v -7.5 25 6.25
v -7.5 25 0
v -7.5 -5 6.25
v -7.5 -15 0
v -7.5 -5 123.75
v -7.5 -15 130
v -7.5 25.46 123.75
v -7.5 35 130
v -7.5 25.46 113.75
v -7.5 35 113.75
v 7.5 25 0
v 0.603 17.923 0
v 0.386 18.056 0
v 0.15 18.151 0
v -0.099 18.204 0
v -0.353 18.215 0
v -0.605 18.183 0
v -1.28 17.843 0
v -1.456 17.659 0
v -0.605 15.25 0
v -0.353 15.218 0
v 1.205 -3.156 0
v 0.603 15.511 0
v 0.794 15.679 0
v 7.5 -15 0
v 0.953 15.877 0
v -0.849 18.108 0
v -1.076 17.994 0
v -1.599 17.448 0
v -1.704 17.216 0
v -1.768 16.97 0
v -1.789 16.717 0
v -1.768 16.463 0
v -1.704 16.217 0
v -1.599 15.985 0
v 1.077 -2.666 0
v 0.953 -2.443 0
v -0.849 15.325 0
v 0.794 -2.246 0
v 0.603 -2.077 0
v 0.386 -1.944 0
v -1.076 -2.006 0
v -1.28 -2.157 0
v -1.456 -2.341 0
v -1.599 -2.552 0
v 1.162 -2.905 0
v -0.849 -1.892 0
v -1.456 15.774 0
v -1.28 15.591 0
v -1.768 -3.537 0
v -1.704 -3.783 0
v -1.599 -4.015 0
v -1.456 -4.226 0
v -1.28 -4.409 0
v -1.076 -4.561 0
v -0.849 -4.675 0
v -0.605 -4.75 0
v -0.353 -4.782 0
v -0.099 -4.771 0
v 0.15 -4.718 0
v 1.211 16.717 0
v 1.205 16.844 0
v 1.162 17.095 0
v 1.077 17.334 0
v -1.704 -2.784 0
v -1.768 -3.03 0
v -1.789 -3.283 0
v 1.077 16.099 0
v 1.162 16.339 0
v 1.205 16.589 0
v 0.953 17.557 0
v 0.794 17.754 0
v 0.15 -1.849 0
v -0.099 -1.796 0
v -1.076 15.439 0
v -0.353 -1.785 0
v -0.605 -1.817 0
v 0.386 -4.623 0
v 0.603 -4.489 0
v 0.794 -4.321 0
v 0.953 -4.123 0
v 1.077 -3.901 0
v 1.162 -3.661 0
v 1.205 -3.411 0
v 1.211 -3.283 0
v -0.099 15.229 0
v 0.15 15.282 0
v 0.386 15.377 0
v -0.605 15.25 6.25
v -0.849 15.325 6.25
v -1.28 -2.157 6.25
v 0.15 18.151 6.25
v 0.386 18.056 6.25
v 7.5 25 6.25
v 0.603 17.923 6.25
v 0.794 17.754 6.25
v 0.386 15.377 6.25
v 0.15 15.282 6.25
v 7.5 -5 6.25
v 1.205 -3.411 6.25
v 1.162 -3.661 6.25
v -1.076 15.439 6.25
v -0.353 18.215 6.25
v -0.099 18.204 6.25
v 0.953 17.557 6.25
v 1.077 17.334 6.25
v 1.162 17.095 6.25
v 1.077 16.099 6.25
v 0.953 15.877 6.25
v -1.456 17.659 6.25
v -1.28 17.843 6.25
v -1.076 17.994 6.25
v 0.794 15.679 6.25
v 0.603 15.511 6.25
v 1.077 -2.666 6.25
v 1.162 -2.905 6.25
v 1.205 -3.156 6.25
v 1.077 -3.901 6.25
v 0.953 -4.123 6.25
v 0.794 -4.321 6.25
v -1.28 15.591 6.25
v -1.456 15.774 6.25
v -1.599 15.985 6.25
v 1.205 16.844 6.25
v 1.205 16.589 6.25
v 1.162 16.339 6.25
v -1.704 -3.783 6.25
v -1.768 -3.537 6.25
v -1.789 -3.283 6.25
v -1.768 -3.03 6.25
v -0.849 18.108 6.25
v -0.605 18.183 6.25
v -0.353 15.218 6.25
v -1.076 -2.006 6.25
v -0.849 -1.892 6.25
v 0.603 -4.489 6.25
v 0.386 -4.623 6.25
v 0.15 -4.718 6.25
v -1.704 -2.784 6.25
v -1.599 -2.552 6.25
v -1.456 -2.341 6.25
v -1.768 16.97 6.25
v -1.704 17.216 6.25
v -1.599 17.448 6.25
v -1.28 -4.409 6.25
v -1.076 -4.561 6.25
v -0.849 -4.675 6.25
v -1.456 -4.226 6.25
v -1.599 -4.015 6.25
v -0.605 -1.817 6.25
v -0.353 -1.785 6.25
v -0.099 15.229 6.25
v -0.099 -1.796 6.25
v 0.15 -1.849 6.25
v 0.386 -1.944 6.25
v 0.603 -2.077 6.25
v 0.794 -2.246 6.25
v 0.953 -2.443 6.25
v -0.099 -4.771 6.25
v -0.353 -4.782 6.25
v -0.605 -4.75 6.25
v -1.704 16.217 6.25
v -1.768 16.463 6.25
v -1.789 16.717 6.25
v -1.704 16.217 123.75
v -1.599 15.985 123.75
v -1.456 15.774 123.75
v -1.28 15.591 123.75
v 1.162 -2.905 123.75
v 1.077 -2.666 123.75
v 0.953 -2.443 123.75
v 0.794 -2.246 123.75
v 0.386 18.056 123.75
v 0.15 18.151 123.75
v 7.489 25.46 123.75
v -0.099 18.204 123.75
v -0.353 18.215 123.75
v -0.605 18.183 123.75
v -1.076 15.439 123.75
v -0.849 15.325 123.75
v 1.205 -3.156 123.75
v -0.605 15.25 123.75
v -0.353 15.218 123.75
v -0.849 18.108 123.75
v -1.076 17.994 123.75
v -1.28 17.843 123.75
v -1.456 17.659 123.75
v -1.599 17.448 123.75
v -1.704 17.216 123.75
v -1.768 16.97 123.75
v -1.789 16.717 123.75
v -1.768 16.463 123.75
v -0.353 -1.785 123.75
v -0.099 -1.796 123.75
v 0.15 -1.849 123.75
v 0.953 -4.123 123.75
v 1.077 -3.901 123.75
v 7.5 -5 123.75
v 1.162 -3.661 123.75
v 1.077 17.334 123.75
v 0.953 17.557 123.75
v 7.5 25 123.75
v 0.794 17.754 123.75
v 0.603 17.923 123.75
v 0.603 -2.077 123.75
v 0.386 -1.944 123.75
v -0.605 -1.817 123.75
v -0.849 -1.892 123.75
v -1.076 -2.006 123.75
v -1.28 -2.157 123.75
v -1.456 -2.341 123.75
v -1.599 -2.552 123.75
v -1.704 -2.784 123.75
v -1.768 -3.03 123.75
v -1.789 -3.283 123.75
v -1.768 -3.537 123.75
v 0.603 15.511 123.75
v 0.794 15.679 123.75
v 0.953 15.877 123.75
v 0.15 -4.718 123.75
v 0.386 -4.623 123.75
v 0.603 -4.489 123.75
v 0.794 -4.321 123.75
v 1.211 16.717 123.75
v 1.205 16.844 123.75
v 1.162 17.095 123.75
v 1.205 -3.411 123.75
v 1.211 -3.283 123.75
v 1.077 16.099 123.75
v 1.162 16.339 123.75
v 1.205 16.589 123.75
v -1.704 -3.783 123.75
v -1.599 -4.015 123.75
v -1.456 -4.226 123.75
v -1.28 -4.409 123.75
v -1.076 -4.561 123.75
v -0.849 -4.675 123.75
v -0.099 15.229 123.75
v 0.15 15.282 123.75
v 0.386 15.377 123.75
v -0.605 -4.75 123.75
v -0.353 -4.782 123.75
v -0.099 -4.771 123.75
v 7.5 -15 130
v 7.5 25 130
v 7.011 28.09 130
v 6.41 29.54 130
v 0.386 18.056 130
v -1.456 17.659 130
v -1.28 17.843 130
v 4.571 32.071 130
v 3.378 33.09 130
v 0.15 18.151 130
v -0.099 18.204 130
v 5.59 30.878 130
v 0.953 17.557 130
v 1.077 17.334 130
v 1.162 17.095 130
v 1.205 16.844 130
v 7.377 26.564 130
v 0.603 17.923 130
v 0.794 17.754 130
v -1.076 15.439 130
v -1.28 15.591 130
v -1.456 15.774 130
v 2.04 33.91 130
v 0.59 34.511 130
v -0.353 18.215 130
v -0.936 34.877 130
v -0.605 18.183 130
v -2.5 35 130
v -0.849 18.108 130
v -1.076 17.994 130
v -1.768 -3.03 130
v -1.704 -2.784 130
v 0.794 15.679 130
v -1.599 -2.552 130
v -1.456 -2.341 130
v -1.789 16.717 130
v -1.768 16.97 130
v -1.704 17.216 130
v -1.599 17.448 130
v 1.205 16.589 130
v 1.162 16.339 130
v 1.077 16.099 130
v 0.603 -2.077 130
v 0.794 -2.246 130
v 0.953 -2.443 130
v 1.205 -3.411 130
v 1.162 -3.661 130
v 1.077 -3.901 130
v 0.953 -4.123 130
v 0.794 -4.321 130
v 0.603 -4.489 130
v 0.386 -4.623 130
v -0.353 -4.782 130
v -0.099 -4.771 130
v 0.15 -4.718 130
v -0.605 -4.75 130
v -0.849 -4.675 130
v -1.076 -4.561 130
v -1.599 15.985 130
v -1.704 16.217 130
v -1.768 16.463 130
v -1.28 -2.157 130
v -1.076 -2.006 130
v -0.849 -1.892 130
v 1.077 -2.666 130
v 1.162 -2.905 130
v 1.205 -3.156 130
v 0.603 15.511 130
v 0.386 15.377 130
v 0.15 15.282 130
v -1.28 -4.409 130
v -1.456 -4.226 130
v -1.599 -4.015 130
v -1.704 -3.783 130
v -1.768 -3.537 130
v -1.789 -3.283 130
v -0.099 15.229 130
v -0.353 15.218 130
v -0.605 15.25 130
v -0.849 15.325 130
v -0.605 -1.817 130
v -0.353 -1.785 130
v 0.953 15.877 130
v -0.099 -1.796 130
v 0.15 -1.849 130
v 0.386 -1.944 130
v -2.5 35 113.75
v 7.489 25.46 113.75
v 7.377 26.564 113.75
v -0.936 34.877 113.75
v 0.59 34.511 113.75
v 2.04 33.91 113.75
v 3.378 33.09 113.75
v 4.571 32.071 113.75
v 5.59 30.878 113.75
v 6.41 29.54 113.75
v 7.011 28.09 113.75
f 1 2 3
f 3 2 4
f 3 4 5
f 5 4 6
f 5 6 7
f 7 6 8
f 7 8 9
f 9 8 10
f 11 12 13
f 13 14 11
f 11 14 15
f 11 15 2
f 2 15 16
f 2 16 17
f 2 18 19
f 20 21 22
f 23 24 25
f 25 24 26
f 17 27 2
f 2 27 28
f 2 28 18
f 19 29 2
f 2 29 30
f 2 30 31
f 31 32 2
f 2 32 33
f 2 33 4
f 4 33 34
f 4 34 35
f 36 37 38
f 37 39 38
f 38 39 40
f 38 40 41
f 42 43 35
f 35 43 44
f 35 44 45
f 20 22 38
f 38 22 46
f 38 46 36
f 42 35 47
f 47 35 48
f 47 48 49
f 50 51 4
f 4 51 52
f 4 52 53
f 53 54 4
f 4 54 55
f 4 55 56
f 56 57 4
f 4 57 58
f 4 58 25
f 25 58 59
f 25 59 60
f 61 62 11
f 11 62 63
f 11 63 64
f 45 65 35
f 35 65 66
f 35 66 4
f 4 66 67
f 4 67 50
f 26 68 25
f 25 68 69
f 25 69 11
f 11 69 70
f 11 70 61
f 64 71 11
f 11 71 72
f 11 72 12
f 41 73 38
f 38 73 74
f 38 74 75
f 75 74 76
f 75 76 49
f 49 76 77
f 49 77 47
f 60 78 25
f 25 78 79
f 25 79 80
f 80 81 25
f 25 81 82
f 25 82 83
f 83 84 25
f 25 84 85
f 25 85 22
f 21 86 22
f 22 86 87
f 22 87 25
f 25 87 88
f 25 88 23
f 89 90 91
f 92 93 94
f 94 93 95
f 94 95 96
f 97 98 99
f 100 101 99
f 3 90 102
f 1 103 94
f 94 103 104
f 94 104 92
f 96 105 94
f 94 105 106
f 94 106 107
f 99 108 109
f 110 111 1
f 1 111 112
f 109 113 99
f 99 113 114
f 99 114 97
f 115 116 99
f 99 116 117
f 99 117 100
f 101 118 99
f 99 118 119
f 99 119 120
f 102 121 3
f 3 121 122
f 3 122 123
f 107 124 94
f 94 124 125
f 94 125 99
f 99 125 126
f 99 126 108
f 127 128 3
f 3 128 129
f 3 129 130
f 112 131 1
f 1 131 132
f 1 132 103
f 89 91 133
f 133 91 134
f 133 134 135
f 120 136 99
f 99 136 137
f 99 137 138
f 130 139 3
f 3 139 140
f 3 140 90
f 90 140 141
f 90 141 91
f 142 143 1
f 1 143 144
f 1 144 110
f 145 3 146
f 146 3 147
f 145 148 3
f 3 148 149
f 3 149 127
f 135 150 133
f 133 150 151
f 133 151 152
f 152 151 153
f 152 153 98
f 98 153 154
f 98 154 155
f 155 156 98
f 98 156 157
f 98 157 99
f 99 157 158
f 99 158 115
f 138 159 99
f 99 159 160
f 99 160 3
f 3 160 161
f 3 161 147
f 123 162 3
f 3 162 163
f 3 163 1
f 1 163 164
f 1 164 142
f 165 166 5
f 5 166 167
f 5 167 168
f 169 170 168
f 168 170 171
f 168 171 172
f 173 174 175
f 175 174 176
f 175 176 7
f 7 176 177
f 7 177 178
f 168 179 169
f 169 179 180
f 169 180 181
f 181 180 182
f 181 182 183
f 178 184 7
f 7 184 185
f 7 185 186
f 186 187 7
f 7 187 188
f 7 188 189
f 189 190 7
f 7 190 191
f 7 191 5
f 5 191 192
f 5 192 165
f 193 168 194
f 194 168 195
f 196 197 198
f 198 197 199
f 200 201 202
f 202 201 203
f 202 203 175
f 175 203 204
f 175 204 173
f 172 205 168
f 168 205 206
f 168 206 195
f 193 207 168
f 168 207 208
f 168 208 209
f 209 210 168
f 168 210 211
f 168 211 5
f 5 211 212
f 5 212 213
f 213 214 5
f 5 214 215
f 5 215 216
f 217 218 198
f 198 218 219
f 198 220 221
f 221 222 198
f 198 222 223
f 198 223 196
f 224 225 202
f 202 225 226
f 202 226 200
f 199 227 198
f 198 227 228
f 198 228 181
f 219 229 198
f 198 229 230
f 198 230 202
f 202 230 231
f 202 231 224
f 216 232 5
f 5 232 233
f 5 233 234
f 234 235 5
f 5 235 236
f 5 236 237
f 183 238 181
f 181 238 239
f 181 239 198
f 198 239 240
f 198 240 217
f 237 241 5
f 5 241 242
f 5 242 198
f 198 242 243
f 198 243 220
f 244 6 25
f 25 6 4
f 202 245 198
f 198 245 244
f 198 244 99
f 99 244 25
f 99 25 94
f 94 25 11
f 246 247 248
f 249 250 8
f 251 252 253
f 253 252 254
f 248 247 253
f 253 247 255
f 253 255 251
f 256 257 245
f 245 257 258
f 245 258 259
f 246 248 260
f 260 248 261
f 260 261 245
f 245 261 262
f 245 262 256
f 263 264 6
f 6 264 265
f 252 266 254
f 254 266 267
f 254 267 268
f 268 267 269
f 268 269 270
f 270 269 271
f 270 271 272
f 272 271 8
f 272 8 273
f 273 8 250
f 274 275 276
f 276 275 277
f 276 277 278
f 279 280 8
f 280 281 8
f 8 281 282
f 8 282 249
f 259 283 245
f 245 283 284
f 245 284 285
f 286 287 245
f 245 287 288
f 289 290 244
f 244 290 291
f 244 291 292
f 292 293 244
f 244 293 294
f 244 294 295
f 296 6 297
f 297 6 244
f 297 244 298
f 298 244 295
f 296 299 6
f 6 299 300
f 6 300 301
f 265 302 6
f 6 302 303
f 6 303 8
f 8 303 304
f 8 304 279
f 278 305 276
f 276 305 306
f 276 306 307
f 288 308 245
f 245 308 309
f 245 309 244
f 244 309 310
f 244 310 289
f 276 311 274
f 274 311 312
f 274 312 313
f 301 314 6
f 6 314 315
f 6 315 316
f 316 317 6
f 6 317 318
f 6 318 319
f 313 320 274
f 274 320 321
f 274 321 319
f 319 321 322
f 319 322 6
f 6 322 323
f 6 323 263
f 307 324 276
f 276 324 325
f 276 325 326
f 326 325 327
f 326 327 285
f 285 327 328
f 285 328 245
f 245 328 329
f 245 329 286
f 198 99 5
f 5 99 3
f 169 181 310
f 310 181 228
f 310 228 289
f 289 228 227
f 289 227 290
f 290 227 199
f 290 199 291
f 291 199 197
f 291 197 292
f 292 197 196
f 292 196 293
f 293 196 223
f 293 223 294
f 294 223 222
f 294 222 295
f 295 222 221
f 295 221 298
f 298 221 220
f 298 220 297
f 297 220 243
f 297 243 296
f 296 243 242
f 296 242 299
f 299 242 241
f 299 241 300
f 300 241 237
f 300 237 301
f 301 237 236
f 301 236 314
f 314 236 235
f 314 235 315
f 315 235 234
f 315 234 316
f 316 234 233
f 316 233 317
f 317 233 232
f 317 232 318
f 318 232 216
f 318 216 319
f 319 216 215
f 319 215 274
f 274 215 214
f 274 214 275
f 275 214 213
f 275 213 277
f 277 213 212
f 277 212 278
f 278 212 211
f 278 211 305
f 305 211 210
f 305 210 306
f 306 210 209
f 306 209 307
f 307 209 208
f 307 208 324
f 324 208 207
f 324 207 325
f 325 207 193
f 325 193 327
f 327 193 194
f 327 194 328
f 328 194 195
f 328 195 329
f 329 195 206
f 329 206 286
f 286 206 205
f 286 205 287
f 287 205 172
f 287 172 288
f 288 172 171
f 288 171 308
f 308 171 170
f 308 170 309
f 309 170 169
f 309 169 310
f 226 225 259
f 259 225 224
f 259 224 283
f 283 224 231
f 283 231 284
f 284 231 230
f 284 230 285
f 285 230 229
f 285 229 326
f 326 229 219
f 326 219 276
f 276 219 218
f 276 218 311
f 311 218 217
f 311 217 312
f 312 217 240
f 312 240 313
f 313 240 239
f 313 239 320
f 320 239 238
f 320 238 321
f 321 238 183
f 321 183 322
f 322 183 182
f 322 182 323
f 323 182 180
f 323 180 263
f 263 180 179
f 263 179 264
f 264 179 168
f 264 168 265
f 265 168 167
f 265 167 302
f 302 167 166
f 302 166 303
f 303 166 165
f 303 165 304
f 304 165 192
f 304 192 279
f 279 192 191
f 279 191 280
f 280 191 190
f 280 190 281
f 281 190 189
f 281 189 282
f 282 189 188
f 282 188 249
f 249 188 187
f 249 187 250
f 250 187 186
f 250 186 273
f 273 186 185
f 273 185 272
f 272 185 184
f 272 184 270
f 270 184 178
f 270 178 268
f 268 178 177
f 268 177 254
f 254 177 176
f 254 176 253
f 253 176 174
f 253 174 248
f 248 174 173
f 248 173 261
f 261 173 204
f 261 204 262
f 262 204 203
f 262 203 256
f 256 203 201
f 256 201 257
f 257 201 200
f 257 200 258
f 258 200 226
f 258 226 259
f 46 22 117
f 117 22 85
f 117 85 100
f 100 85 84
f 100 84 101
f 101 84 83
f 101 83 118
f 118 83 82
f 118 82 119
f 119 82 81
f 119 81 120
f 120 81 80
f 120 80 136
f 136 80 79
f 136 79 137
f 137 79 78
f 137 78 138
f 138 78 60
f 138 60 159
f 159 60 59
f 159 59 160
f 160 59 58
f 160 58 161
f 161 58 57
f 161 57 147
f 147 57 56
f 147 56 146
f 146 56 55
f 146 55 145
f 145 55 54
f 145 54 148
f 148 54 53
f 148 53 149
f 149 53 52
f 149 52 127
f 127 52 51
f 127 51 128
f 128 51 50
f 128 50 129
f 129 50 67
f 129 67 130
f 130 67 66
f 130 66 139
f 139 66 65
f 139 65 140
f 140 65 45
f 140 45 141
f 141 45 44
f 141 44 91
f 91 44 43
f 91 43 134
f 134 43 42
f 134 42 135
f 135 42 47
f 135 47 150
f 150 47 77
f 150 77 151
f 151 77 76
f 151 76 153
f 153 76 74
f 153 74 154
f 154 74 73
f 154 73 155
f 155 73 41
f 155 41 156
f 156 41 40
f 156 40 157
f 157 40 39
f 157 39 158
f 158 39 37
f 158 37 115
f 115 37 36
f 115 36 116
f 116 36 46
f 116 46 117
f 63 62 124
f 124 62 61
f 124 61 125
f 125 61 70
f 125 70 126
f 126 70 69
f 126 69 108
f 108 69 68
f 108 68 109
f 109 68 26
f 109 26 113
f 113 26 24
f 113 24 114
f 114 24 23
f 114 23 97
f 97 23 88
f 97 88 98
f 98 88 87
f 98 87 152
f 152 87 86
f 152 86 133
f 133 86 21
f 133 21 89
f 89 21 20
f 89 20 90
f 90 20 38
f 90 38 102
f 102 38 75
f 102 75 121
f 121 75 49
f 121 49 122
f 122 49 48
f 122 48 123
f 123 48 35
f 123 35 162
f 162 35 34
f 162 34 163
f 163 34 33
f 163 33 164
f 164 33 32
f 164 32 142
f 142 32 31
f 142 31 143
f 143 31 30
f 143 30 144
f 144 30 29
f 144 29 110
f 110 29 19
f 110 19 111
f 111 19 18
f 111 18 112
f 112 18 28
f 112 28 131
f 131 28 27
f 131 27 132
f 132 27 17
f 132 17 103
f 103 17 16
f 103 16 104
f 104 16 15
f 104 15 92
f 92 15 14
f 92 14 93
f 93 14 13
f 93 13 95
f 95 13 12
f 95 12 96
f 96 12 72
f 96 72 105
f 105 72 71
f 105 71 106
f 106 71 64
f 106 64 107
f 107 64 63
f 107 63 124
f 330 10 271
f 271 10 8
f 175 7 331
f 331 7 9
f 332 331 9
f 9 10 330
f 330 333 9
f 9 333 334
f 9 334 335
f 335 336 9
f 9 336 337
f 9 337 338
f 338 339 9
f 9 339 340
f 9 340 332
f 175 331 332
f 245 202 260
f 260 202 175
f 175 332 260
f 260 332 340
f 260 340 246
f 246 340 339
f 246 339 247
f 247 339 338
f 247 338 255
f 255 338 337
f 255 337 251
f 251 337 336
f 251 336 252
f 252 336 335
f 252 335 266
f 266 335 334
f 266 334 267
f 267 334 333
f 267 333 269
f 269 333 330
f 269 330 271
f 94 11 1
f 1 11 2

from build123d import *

# Parameters (mm, degrees)
SKETCH1_W               = 15
SKETCH1_H               = 40
BOSS_EXTRUDE1_DEPTH     = 130
SKETCH2_W               = 15
SKETCH2_H               = 117.5
CUT_EXTRUDE1_DEPTH      = 30
CUT_EXTRUDE2_DEPTH      = 133.594306062
CUT_EXTRUDE2_DEPTH_BACK = 133.594306062
SKETCH3_R               = 1.5
SKETCH4_W               = 15
SKETCH4_H               = 6.25
BOSS_EXTRUDE2_DEPTH     = 10
SKETCH5_W               = 15
SKETCH5_H               = 9.54020797
BOSS_EXTRUDE3_DEPTH     = 10
FILLET1_R               = 10
SKETCH7_W               = 15
SKETCH7_H               = 6.25
CUT_EXTRUDE3_DEPTH      = 10


with BuildPart() as part:
    # Sketch1 → Boss-Extrude1 (new body)
    with BuildSketch(Plane.XY):
        with Locations((0, 5)):
            Rectangle(SKETCH1_W, SKETCH1_H)
    extrude(amount=BOSS_EXTRUDE1_DEPTH)

    # Sketch2 → Cut-Extrude1 (cut)
    with BuildSketch(Plane(origin=(0, 25, 0), x_dir=(1, 0, 0), z_dir=(0, 1, 0))):
        with Locations((0, -65)):
            Rectangle(SKETCH2_W, SKETCH2_H)
    extrude(amount=-CUT_EXTRUDE1_DEPTH, mode=Mode.SUBTRACT)

    # Sketch3 → Cut-Extrude2 (cut, two sides: drawn at the far end of the back side and taken through both)
    with BuildSketch(Plane(origin=(0, 0, 0), x_dir=(-1, 0, 0), z_dir=(0, 0, -1)).offset(-CUT_EXTRUDE2_DEPTH_BACK)):
        with Locations((0.28935703, 16.716588701)):
            Circle(SKETCH3_R)
        with Locations((0.28935703, -3.283411299)):
            Circle(SKETCH3_R)
    extrude(amount=CUT_EXTRUDE2_DEPTH + CUT_EXTRUDE2_DEPTH_BACK, mode=Mode.SUBTRACT)

    # Sketch4 → Boss-Extrude2 (add)
    with BuildSketch(Plane(origin=(0, 25, 0), x_dir=(1, 0, 0), z_dir=(0, 1, 0))):
        with Locations((0, -3.125)):
            Rectangle(SKETCH4_W, SKETCH4_H)
        with Locations((0, -126.875)):
            Rectangle(SKETCH4_W, SKETCH4_H)
    extrude(amount=BOSS_EXTRUDE2_DEPTH)

    # Sketch5 → Boss-Extrude3 (add)
    with BuildSketch(Plane(origin=(0, 0, 123.75), x_dir=(-1, 0, 0), z_dir=(0, 0, -1))):
        with Locations((0, 30.229896015)):
            Rectangle(SKETCH5_W, SKETCH5_H)
    extrude(amount=BOSS_EXTRUDE3_DEPTH)

    # Fillet1
    fillet1_edges = [part.edges().sort_by_distance(p)[0] for p in [
        (7.5, 35, 3.125),
        (7.5, 35, 121.875),
    ]]
    fillet(fillet1_edges, radius=FILLET1_R)

    # Sketch7 → Cut-Extrude3 (cut)
    with BuildSketch(Plane(origin=(0, 35, 0), x_dir=(1, 0, 0), z_dir=(0, 1, 0))):
        with Locations((0, -3.125)):
            Rectangle(SKETCH7_W, SKETCH7_H)
    extrude(amount=-CUT_EXTRUDE3_DEPTH, mode=Mode.SUBTRACT)


solid = part.part
